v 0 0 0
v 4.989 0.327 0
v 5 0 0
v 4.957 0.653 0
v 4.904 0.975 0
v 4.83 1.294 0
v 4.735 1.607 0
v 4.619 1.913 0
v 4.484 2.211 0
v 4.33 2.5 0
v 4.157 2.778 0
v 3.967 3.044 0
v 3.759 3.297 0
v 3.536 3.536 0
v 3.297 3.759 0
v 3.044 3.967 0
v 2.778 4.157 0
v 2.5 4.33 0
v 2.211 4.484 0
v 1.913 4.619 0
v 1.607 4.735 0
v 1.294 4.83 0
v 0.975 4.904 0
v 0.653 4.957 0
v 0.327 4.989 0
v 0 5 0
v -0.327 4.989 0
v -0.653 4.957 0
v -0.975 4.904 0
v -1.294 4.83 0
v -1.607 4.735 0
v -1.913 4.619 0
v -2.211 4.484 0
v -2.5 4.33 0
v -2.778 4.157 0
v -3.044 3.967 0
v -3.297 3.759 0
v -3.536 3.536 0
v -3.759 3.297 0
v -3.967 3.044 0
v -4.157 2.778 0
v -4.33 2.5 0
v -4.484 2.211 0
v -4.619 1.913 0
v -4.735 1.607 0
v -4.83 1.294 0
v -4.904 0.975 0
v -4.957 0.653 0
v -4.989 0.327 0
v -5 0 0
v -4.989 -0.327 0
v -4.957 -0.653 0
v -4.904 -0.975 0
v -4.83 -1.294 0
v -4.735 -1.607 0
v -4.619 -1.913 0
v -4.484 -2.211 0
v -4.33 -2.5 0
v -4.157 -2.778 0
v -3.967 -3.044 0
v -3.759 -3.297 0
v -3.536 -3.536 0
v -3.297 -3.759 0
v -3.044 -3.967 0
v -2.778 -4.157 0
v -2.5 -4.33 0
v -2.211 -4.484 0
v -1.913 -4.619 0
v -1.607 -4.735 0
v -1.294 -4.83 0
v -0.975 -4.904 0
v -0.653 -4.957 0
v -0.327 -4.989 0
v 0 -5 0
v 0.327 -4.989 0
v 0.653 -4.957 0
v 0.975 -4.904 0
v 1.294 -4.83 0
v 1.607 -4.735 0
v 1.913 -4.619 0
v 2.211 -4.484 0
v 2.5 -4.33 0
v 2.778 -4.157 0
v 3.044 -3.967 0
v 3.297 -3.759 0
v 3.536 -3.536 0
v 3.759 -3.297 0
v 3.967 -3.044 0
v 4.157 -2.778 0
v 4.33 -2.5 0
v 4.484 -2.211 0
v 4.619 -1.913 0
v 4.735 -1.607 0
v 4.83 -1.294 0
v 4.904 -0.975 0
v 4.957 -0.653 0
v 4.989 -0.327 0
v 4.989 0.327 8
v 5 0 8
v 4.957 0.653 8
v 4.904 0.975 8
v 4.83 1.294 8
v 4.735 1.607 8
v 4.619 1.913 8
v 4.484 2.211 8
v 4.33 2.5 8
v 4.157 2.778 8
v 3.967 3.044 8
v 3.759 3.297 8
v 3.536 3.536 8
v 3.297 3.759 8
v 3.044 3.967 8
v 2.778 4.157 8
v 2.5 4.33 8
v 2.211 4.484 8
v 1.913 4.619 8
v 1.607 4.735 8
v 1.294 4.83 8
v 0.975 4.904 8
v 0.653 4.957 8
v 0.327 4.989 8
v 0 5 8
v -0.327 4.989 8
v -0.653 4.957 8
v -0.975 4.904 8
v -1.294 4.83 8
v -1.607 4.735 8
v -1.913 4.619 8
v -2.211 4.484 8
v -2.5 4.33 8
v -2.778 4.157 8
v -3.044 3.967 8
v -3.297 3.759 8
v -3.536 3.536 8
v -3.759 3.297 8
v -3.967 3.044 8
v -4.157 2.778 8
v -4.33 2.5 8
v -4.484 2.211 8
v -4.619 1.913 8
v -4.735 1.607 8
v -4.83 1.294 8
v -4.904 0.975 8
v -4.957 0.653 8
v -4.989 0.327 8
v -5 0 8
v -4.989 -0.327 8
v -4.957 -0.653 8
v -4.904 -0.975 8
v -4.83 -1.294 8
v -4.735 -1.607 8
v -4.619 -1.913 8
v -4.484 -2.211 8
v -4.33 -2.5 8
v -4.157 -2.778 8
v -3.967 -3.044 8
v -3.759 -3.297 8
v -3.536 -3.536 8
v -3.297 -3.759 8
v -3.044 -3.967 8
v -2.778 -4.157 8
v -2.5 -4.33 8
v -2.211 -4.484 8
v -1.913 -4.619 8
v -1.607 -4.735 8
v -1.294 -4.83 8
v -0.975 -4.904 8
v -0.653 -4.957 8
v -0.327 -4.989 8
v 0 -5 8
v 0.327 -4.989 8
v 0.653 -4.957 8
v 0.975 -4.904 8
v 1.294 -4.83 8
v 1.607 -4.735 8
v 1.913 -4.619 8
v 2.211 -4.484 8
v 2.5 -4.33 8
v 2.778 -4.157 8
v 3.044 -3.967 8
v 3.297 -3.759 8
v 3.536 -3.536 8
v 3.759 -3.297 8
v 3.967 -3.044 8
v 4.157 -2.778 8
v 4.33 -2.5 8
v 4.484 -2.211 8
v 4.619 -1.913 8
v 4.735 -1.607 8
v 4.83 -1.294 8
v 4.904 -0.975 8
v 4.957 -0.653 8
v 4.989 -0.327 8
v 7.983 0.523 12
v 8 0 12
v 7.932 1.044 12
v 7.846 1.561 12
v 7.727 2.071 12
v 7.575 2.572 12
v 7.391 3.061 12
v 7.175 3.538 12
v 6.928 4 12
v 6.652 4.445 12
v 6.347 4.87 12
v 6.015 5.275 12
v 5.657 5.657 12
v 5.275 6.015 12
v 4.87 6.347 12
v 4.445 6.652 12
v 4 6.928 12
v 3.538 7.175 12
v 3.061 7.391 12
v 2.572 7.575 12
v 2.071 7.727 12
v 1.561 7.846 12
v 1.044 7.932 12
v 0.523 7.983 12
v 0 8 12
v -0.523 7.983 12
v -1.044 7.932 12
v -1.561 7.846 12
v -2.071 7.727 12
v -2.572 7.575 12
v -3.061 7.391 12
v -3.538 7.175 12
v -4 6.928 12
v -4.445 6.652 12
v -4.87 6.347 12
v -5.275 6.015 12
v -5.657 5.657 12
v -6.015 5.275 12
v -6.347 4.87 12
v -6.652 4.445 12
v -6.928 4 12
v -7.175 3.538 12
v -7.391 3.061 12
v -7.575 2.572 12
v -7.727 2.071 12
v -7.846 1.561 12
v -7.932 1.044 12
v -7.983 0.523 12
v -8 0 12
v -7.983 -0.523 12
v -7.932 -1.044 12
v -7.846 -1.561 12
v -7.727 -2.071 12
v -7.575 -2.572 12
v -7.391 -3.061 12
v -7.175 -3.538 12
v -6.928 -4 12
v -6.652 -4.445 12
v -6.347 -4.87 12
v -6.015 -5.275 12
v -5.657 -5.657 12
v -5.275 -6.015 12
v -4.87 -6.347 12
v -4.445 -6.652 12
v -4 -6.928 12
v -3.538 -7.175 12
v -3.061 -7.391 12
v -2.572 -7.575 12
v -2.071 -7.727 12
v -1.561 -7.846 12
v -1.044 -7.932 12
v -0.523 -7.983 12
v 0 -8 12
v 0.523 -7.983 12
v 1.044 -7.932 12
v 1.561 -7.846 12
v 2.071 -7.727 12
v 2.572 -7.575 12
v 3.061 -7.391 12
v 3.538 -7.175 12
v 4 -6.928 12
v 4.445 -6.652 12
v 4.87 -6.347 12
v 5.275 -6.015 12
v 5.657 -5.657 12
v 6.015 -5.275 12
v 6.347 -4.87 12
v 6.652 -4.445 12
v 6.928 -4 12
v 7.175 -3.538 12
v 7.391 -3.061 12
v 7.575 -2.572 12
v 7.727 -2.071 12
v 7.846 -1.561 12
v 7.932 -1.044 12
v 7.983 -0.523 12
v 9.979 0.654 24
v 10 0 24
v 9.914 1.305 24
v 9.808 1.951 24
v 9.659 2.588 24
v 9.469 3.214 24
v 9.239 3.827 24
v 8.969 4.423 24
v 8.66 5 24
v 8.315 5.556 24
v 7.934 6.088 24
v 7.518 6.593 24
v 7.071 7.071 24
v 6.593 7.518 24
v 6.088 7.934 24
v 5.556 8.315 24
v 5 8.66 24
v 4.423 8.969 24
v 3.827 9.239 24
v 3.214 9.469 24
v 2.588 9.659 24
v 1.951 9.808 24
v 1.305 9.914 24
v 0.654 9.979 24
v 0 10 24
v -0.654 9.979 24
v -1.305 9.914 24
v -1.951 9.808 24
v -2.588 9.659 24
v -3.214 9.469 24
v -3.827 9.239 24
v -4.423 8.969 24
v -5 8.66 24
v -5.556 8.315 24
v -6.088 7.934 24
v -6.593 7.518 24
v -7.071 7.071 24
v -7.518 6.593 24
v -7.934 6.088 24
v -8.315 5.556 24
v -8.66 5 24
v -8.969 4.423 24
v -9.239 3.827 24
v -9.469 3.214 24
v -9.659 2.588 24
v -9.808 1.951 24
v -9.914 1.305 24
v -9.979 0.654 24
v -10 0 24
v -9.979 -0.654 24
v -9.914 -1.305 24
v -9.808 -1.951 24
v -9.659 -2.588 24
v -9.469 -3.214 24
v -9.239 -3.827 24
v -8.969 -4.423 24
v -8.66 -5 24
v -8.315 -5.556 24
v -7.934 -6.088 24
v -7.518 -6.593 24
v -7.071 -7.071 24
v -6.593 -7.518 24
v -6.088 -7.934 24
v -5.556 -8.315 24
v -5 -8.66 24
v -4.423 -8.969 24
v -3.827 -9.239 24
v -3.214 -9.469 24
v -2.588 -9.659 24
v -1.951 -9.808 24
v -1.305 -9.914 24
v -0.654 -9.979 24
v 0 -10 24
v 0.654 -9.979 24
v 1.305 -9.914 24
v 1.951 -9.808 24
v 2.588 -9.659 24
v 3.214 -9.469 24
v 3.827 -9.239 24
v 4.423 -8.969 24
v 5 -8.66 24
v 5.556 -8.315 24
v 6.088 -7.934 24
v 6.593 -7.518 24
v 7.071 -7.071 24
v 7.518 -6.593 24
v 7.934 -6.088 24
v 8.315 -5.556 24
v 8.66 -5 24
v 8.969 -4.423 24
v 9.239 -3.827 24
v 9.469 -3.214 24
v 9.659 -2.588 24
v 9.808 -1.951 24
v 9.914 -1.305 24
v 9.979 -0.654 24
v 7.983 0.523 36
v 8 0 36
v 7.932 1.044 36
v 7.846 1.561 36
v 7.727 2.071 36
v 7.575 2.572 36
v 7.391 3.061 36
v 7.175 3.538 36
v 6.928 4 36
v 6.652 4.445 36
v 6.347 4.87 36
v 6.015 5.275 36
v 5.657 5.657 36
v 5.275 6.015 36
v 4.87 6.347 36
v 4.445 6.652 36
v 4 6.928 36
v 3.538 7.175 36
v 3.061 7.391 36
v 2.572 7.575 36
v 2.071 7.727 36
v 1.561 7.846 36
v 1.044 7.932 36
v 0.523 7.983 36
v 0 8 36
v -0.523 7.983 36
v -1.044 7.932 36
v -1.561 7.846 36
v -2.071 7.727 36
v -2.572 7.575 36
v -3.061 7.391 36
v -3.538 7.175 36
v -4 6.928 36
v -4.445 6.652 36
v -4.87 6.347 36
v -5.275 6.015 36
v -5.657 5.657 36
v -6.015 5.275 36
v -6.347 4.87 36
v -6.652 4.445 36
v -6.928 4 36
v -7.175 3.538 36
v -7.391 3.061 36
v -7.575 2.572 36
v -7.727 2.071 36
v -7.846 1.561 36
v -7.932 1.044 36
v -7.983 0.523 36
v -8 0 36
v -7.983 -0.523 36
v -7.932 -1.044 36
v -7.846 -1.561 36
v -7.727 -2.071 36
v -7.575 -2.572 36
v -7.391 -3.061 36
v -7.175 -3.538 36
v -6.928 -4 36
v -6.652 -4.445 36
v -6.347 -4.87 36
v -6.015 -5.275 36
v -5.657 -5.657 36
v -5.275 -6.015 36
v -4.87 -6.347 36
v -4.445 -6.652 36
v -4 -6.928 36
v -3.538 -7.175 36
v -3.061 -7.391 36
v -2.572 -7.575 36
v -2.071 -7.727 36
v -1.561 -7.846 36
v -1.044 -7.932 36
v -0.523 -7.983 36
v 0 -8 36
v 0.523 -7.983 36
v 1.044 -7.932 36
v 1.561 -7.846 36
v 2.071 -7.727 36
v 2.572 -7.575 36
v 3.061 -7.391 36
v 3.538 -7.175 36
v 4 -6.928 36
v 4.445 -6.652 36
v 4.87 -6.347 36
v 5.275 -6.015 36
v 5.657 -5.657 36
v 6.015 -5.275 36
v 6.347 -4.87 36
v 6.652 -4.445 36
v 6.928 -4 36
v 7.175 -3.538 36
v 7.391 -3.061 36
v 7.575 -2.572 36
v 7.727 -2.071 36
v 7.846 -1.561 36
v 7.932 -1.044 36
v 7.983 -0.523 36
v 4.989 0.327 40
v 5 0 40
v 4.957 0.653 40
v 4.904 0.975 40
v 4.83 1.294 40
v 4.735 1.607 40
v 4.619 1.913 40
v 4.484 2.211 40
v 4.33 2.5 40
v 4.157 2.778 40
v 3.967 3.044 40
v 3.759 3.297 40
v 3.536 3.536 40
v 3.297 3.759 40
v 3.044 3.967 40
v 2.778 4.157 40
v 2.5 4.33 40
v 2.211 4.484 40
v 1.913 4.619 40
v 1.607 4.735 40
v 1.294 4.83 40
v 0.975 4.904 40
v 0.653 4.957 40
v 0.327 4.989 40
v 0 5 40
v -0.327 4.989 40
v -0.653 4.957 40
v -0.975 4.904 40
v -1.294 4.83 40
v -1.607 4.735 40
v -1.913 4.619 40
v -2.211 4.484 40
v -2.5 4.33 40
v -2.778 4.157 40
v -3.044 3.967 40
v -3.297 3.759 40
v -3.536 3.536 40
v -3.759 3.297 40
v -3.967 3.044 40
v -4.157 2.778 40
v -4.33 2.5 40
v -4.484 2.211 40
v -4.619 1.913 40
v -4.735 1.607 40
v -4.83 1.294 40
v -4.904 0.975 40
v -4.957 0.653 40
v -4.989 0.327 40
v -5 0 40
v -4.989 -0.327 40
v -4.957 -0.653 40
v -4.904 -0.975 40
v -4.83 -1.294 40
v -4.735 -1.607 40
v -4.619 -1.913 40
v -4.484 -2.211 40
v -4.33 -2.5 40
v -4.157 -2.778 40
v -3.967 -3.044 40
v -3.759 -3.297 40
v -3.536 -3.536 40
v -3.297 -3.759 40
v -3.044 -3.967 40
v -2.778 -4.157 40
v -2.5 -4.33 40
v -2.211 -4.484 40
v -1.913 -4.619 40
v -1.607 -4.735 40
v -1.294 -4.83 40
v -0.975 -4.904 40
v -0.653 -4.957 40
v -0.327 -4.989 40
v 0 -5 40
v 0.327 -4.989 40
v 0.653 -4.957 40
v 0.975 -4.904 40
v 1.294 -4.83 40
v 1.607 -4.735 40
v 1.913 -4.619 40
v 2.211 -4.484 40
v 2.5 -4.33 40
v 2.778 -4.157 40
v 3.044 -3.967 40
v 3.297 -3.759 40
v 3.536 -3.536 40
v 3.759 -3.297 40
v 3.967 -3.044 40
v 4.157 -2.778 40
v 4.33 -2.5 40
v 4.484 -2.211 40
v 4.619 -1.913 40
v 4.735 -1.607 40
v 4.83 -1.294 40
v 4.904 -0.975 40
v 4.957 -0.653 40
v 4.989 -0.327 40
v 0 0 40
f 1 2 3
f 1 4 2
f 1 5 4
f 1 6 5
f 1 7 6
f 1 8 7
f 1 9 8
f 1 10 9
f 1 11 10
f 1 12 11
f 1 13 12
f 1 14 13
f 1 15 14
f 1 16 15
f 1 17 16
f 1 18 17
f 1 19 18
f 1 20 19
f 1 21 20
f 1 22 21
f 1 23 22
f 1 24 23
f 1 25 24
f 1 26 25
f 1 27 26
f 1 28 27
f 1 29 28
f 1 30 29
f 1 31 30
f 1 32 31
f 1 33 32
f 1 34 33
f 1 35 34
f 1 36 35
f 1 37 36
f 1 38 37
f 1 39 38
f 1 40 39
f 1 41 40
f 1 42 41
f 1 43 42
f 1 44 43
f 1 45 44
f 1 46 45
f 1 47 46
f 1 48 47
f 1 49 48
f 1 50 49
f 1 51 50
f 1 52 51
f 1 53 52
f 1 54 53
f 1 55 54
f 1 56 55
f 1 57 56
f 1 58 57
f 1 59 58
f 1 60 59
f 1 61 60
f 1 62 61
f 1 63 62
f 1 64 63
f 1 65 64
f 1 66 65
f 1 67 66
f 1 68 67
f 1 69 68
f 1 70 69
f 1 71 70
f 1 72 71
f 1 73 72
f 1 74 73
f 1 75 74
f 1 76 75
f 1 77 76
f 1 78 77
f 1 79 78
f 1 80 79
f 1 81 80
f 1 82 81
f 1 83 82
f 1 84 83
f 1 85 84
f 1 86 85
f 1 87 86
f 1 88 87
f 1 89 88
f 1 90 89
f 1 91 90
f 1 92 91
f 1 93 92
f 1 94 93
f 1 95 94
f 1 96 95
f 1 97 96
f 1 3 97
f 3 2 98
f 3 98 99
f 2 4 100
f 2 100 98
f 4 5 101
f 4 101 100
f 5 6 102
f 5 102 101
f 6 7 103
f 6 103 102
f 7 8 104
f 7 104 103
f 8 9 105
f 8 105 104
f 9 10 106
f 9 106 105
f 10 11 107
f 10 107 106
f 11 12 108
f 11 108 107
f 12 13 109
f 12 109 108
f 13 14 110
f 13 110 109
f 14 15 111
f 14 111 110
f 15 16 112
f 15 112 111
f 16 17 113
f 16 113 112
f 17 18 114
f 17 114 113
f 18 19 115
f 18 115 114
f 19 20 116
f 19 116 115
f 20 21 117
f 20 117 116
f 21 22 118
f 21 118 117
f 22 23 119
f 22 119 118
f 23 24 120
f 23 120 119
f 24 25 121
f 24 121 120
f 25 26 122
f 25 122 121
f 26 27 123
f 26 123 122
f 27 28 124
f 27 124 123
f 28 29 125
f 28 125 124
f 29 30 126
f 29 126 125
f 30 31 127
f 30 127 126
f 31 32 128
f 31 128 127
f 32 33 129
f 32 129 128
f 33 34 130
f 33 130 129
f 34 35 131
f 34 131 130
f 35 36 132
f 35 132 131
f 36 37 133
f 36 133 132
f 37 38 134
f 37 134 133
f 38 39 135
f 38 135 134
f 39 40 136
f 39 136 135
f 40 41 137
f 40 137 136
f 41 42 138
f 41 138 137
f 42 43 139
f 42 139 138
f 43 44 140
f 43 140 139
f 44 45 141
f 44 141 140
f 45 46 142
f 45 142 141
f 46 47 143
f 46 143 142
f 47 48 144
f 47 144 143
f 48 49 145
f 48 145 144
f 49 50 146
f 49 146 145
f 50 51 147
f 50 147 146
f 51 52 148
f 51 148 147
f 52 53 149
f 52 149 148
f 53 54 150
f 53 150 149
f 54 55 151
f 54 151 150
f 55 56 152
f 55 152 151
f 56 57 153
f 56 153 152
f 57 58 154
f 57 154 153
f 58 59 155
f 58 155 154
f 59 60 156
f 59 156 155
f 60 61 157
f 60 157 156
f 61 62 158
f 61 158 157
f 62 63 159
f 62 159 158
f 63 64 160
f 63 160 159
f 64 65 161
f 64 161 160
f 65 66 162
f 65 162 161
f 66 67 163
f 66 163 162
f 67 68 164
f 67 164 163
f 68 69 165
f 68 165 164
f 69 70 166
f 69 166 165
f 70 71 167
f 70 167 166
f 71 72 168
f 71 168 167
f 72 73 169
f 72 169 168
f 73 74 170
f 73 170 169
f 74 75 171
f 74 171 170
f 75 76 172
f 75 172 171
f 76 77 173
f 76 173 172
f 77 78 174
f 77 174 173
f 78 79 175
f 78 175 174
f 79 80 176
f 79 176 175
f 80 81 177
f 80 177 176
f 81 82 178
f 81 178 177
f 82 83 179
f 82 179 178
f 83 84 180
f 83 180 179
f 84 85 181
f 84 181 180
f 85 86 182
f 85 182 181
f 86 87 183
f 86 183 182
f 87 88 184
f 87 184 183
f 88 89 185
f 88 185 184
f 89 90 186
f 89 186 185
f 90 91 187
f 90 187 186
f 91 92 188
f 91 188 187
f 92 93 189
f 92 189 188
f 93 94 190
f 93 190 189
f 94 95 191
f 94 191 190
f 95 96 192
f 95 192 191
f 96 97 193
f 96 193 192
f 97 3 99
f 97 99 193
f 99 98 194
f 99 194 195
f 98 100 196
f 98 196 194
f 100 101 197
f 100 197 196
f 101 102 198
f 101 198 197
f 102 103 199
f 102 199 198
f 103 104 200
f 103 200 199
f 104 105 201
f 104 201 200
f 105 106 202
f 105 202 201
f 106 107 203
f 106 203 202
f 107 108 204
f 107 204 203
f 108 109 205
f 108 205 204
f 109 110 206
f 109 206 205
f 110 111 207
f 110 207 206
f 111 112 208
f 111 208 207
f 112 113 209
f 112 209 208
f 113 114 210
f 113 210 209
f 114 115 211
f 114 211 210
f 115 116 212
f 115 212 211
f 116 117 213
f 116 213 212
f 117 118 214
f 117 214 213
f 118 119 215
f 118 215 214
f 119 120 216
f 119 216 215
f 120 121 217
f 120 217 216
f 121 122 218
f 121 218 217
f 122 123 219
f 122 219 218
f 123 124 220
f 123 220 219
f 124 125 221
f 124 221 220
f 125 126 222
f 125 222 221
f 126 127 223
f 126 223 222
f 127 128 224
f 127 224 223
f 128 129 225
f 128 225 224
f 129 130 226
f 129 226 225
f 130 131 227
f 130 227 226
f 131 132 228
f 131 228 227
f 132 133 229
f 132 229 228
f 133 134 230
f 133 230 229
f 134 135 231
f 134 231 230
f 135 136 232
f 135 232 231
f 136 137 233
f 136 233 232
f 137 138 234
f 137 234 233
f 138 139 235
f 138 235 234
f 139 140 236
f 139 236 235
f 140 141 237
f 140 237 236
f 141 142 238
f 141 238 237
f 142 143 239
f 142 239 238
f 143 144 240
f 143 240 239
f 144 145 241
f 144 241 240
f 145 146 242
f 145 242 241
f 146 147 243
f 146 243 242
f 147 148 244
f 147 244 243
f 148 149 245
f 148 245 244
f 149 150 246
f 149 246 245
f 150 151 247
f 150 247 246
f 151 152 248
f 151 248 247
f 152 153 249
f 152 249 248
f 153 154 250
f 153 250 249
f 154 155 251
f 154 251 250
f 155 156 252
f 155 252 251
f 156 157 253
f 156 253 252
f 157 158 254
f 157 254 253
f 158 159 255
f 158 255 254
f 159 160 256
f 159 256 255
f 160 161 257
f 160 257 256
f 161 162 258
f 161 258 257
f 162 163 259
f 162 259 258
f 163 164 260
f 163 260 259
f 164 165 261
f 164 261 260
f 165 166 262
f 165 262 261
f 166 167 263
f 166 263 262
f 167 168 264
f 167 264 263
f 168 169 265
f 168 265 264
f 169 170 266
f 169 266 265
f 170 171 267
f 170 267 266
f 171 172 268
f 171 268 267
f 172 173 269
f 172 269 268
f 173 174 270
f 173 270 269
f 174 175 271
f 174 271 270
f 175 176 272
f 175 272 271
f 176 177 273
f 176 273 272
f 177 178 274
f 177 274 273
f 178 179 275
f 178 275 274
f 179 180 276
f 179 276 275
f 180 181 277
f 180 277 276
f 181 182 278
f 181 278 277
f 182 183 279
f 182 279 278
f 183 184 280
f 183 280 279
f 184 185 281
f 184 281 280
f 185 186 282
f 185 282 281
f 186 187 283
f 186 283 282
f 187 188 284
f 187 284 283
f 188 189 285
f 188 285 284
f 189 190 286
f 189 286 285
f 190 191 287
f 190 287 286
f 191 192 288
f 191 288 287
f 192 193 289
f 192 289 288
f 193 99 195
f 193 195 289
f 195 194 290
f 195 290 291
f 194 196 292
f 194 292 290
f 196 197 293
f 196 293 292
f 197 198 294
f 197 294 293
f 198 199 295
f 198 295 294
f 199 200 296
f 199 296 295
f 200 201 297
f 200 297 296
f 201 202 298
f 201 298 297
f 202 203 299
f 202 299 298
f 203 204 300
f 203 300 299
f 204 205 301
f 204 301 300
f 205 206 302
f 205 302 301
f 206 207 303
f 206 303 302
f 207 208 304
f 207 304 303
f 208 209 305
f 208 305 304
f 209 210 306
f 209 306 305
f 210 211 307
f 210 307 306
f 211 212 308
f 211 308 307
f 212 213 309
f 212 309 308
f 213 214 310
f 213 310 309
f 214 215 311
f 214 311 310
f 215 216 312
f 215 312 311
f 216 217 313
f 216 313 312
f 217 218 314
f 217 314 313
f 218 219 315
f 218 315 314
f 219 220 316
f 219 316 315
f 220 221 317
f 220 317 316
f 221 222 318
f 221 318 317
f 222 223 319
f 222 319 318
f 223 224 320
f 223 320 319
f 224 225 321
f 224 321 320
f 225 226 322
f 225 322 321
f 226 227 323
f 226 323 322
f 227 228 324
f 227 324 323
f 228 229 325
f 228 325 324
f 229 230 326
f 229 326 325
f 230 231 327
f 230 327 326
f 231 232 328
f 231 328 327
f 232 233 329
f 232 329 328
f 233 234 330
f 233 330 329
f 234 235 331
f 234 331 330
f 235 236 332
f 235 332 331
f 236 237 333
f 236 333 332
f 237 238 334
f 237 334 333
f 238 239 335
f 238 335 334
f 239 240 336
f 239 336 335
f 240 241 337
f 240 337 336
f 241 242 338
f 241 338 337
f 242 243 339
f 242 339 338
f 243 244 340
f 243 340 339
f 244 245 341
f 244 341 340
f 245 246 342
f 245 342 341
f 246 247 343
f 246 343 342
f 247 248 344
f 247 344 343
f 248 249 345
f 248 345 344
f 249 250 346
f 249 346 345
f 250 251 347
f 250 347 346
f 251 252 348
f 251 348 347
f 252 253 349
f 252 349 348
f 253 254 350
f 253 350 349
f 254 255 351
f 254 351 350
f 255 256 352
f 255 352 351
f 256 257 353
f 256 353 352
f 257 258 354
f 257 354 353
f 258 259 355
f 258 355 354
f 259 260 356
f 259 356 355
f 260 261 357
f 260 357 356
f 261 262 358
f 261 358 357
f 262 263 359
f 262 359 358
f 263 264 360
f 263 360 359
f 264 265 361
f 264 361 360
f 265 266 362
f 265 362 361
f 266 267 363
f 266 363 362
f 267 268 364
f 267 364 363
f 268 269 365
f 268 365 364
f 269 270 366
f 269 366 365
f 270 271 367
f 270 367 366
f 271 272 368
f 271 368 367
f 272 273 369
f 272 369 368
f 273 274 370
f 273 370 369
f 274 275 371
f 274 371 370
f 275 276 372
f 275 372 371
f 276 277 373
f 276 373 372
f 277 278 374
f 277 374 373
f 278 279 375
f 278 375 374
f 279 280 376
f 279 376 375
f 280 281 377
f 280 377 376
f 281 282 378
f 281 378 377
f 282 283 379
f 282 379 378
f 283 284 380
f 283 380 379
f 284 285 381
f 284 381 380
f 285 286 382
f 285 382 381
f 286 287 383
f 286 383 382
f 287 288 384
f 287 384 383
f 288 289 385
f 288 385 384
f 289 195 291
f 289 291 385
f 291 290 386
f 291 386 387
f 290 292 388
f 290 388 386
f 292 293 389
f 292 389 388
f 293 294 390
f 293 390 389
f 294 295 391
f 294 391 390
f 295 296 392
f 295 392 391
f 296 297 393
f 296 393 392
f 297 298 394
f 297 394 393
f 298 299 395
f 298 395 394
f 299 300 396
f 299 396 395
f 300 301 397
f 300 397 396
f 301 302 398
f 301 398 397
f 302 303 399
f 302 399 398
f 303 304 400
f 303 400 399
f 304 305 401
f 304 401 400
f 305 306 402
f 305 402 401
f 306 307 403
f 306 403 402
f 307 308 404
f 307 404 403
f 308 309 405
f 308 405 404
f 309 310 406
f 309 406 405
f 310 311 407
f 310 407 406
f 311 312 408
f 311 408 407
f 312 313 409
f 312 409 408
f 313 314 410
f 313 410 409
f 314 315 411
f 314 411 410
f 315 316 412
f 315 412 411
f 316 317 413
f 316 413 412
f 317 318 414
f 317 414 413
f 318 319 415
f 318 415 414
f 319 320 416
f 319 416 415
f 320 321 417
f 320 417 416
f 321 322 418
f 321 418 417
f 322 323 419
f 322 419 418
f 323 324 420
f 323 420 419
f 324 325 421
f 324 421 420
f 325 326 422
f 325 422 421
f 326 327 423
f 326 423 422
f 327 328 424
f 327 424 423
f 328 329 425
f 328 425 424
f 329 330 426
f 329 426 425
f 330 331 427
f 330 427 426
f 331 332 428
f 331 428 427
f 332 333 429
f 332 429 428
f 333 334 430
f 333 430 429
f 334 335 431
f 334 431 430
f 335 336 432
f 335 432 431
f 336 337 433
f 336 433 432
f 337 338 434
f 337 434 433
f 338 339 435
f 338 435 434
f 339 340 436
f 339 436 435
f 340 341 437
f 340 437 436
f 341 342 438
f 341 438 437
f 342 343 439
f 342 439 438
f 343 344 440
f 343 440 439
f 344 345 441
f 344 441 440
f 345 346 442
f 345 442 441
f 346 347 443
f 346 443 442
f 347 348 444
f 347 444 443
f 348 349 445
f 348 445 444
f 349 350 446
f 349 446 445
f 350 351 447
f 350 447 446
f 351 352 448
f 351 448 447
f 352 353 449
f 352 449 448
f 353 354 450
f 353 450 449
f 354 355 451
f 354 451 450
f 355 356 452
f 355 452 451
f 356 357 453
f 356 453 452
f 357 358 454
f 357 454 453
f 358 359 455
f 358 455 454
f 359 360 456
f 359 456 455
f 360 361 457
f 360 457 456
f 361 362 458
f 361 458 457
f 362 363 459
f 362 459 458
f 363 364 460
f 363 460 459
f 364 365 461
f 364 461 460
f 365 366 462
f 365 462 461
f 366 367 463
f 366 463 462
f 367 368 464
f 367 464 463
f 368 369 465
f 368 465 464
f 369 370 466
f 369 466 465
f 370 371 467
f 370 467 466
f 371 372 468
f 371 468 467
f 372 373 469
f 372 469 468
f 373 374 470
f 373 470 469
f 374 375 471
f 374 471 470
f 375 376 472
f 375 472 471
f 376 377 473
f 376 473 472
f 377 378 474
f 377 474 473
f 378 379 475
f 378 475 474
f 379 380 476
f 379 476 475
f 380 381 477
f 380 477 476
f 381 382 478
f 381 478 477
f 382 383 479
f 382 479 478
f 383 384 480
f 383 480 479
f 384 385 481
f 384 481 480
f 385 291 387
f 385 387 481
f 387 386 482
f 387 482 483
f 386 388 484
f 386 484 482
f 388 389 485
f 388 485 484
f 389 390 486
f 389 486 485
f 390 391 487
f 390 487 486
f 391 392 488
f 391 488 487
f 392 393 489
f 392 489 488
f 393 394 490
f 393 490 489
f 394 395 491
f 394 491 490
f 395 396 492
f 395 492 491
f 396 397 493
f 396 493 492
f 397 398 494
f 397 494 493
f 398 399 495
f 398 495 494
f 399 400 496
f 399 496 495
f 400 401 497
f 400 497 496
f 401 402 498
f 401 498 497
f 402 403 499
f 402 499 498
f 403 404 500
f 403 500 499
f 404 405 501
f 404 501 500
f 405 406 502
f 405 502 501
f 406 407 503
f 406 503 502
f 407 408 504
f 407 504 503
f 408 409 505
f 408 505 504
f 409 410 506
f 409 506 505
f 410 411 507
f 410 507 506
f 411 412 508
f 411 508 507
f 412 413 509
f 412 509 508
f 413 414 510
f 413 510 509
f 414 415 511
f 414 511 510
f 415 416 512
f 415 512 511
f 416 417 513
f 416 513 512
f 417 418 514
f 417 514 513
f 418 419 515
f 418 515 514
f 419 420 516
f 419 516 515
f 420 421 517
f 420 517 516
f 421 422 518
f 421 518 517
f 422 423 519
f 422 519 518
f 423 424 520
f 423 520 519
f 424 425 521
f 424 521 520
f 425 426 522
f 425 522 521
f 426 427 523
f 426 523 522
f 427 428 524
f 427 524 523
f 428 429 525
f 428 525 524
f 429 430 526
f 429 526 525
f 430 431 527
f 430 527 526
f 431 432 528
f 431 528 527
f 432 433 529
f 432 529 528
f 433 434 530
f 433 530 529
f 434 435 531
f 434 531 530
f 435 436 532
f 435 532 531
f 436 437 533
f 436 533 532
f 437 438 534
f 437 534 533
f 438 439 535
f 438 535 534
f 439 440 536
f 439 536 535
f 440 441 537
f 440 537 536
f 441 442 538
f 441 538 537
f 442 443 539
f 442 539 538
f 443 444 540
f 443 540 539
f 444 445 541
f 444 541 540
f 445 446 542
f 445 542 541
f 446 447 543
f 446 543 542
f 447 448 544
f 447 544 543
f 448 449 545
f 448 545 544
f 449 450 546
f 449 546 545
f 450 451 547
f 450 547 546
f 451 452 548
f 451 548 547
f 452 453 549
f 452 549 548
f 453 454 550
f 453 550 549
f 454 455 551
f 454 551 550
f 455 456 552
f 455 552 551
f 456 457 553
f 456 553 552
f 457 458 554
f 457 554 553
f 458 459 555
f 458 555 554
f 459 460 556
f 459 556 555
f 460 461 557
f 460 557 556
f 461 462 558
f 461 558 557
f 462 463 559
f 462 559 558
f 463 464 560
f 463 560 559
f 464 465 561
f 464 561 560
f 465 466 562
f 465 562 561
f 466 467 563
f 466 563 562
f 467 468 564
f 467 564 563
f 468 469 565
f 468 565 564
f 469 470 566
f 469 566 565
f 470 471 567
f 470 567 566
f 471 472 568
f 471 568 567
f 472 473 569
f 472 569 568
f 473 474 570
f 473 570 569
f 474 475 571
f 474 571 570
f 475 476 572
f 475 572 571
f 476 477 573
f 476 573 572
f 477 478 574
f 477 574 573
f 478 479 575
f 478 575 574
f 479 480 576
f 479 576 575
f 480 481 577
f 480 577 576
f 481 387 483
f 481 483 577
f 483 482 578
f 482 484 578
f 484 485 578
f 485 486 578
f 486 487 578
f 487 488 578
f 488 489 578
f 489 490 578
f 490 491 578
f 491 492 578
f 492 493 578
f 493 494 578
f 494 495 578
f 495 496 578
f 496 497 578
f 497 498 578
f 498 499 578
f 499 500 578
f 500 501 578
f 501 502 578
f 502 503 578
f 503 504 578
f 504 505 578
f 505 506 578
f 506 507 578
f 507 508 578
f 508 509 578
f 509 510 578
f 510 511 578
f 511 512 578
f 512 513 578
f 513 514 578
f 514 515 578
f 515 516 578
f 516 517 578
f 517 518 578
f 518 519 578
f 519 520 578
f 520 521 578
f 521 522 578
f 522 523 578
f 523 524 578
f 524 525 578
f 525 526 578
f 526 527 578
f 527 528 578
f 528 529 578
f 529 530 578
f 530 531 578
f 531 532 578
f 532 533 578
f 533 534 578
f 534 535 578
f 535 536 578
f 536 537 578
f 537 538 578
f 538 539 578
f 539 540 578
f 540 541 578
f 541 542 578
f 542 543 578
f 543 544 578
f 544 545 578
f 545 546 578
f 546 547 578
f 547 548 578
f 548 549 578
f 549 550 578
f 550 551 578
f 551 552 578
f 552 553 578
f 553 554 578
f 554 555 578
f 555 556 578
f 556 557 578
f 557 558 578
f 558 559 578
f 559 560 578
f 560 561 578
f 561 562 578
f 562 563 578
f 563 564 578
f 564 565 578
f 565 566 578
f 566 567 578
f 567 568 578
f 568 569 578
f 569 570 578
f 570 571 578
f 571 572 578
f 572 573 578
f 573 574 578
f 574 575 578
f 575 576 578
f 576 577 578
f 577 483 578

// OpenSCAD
// Original MechIntel educational model. CC0-1.0. Units: mm.
// Not a standardized or load-rated component.
$fn=96;
// Section points: [radius, height], mm. Edit to change the profile.
section=[[0, 0], [5, 0], [5, 8], [8, 12], [10, 24], [8, 36], [5, 40], [0, 40]];
rotate_extrude($fn=96) polygon(points=section);
